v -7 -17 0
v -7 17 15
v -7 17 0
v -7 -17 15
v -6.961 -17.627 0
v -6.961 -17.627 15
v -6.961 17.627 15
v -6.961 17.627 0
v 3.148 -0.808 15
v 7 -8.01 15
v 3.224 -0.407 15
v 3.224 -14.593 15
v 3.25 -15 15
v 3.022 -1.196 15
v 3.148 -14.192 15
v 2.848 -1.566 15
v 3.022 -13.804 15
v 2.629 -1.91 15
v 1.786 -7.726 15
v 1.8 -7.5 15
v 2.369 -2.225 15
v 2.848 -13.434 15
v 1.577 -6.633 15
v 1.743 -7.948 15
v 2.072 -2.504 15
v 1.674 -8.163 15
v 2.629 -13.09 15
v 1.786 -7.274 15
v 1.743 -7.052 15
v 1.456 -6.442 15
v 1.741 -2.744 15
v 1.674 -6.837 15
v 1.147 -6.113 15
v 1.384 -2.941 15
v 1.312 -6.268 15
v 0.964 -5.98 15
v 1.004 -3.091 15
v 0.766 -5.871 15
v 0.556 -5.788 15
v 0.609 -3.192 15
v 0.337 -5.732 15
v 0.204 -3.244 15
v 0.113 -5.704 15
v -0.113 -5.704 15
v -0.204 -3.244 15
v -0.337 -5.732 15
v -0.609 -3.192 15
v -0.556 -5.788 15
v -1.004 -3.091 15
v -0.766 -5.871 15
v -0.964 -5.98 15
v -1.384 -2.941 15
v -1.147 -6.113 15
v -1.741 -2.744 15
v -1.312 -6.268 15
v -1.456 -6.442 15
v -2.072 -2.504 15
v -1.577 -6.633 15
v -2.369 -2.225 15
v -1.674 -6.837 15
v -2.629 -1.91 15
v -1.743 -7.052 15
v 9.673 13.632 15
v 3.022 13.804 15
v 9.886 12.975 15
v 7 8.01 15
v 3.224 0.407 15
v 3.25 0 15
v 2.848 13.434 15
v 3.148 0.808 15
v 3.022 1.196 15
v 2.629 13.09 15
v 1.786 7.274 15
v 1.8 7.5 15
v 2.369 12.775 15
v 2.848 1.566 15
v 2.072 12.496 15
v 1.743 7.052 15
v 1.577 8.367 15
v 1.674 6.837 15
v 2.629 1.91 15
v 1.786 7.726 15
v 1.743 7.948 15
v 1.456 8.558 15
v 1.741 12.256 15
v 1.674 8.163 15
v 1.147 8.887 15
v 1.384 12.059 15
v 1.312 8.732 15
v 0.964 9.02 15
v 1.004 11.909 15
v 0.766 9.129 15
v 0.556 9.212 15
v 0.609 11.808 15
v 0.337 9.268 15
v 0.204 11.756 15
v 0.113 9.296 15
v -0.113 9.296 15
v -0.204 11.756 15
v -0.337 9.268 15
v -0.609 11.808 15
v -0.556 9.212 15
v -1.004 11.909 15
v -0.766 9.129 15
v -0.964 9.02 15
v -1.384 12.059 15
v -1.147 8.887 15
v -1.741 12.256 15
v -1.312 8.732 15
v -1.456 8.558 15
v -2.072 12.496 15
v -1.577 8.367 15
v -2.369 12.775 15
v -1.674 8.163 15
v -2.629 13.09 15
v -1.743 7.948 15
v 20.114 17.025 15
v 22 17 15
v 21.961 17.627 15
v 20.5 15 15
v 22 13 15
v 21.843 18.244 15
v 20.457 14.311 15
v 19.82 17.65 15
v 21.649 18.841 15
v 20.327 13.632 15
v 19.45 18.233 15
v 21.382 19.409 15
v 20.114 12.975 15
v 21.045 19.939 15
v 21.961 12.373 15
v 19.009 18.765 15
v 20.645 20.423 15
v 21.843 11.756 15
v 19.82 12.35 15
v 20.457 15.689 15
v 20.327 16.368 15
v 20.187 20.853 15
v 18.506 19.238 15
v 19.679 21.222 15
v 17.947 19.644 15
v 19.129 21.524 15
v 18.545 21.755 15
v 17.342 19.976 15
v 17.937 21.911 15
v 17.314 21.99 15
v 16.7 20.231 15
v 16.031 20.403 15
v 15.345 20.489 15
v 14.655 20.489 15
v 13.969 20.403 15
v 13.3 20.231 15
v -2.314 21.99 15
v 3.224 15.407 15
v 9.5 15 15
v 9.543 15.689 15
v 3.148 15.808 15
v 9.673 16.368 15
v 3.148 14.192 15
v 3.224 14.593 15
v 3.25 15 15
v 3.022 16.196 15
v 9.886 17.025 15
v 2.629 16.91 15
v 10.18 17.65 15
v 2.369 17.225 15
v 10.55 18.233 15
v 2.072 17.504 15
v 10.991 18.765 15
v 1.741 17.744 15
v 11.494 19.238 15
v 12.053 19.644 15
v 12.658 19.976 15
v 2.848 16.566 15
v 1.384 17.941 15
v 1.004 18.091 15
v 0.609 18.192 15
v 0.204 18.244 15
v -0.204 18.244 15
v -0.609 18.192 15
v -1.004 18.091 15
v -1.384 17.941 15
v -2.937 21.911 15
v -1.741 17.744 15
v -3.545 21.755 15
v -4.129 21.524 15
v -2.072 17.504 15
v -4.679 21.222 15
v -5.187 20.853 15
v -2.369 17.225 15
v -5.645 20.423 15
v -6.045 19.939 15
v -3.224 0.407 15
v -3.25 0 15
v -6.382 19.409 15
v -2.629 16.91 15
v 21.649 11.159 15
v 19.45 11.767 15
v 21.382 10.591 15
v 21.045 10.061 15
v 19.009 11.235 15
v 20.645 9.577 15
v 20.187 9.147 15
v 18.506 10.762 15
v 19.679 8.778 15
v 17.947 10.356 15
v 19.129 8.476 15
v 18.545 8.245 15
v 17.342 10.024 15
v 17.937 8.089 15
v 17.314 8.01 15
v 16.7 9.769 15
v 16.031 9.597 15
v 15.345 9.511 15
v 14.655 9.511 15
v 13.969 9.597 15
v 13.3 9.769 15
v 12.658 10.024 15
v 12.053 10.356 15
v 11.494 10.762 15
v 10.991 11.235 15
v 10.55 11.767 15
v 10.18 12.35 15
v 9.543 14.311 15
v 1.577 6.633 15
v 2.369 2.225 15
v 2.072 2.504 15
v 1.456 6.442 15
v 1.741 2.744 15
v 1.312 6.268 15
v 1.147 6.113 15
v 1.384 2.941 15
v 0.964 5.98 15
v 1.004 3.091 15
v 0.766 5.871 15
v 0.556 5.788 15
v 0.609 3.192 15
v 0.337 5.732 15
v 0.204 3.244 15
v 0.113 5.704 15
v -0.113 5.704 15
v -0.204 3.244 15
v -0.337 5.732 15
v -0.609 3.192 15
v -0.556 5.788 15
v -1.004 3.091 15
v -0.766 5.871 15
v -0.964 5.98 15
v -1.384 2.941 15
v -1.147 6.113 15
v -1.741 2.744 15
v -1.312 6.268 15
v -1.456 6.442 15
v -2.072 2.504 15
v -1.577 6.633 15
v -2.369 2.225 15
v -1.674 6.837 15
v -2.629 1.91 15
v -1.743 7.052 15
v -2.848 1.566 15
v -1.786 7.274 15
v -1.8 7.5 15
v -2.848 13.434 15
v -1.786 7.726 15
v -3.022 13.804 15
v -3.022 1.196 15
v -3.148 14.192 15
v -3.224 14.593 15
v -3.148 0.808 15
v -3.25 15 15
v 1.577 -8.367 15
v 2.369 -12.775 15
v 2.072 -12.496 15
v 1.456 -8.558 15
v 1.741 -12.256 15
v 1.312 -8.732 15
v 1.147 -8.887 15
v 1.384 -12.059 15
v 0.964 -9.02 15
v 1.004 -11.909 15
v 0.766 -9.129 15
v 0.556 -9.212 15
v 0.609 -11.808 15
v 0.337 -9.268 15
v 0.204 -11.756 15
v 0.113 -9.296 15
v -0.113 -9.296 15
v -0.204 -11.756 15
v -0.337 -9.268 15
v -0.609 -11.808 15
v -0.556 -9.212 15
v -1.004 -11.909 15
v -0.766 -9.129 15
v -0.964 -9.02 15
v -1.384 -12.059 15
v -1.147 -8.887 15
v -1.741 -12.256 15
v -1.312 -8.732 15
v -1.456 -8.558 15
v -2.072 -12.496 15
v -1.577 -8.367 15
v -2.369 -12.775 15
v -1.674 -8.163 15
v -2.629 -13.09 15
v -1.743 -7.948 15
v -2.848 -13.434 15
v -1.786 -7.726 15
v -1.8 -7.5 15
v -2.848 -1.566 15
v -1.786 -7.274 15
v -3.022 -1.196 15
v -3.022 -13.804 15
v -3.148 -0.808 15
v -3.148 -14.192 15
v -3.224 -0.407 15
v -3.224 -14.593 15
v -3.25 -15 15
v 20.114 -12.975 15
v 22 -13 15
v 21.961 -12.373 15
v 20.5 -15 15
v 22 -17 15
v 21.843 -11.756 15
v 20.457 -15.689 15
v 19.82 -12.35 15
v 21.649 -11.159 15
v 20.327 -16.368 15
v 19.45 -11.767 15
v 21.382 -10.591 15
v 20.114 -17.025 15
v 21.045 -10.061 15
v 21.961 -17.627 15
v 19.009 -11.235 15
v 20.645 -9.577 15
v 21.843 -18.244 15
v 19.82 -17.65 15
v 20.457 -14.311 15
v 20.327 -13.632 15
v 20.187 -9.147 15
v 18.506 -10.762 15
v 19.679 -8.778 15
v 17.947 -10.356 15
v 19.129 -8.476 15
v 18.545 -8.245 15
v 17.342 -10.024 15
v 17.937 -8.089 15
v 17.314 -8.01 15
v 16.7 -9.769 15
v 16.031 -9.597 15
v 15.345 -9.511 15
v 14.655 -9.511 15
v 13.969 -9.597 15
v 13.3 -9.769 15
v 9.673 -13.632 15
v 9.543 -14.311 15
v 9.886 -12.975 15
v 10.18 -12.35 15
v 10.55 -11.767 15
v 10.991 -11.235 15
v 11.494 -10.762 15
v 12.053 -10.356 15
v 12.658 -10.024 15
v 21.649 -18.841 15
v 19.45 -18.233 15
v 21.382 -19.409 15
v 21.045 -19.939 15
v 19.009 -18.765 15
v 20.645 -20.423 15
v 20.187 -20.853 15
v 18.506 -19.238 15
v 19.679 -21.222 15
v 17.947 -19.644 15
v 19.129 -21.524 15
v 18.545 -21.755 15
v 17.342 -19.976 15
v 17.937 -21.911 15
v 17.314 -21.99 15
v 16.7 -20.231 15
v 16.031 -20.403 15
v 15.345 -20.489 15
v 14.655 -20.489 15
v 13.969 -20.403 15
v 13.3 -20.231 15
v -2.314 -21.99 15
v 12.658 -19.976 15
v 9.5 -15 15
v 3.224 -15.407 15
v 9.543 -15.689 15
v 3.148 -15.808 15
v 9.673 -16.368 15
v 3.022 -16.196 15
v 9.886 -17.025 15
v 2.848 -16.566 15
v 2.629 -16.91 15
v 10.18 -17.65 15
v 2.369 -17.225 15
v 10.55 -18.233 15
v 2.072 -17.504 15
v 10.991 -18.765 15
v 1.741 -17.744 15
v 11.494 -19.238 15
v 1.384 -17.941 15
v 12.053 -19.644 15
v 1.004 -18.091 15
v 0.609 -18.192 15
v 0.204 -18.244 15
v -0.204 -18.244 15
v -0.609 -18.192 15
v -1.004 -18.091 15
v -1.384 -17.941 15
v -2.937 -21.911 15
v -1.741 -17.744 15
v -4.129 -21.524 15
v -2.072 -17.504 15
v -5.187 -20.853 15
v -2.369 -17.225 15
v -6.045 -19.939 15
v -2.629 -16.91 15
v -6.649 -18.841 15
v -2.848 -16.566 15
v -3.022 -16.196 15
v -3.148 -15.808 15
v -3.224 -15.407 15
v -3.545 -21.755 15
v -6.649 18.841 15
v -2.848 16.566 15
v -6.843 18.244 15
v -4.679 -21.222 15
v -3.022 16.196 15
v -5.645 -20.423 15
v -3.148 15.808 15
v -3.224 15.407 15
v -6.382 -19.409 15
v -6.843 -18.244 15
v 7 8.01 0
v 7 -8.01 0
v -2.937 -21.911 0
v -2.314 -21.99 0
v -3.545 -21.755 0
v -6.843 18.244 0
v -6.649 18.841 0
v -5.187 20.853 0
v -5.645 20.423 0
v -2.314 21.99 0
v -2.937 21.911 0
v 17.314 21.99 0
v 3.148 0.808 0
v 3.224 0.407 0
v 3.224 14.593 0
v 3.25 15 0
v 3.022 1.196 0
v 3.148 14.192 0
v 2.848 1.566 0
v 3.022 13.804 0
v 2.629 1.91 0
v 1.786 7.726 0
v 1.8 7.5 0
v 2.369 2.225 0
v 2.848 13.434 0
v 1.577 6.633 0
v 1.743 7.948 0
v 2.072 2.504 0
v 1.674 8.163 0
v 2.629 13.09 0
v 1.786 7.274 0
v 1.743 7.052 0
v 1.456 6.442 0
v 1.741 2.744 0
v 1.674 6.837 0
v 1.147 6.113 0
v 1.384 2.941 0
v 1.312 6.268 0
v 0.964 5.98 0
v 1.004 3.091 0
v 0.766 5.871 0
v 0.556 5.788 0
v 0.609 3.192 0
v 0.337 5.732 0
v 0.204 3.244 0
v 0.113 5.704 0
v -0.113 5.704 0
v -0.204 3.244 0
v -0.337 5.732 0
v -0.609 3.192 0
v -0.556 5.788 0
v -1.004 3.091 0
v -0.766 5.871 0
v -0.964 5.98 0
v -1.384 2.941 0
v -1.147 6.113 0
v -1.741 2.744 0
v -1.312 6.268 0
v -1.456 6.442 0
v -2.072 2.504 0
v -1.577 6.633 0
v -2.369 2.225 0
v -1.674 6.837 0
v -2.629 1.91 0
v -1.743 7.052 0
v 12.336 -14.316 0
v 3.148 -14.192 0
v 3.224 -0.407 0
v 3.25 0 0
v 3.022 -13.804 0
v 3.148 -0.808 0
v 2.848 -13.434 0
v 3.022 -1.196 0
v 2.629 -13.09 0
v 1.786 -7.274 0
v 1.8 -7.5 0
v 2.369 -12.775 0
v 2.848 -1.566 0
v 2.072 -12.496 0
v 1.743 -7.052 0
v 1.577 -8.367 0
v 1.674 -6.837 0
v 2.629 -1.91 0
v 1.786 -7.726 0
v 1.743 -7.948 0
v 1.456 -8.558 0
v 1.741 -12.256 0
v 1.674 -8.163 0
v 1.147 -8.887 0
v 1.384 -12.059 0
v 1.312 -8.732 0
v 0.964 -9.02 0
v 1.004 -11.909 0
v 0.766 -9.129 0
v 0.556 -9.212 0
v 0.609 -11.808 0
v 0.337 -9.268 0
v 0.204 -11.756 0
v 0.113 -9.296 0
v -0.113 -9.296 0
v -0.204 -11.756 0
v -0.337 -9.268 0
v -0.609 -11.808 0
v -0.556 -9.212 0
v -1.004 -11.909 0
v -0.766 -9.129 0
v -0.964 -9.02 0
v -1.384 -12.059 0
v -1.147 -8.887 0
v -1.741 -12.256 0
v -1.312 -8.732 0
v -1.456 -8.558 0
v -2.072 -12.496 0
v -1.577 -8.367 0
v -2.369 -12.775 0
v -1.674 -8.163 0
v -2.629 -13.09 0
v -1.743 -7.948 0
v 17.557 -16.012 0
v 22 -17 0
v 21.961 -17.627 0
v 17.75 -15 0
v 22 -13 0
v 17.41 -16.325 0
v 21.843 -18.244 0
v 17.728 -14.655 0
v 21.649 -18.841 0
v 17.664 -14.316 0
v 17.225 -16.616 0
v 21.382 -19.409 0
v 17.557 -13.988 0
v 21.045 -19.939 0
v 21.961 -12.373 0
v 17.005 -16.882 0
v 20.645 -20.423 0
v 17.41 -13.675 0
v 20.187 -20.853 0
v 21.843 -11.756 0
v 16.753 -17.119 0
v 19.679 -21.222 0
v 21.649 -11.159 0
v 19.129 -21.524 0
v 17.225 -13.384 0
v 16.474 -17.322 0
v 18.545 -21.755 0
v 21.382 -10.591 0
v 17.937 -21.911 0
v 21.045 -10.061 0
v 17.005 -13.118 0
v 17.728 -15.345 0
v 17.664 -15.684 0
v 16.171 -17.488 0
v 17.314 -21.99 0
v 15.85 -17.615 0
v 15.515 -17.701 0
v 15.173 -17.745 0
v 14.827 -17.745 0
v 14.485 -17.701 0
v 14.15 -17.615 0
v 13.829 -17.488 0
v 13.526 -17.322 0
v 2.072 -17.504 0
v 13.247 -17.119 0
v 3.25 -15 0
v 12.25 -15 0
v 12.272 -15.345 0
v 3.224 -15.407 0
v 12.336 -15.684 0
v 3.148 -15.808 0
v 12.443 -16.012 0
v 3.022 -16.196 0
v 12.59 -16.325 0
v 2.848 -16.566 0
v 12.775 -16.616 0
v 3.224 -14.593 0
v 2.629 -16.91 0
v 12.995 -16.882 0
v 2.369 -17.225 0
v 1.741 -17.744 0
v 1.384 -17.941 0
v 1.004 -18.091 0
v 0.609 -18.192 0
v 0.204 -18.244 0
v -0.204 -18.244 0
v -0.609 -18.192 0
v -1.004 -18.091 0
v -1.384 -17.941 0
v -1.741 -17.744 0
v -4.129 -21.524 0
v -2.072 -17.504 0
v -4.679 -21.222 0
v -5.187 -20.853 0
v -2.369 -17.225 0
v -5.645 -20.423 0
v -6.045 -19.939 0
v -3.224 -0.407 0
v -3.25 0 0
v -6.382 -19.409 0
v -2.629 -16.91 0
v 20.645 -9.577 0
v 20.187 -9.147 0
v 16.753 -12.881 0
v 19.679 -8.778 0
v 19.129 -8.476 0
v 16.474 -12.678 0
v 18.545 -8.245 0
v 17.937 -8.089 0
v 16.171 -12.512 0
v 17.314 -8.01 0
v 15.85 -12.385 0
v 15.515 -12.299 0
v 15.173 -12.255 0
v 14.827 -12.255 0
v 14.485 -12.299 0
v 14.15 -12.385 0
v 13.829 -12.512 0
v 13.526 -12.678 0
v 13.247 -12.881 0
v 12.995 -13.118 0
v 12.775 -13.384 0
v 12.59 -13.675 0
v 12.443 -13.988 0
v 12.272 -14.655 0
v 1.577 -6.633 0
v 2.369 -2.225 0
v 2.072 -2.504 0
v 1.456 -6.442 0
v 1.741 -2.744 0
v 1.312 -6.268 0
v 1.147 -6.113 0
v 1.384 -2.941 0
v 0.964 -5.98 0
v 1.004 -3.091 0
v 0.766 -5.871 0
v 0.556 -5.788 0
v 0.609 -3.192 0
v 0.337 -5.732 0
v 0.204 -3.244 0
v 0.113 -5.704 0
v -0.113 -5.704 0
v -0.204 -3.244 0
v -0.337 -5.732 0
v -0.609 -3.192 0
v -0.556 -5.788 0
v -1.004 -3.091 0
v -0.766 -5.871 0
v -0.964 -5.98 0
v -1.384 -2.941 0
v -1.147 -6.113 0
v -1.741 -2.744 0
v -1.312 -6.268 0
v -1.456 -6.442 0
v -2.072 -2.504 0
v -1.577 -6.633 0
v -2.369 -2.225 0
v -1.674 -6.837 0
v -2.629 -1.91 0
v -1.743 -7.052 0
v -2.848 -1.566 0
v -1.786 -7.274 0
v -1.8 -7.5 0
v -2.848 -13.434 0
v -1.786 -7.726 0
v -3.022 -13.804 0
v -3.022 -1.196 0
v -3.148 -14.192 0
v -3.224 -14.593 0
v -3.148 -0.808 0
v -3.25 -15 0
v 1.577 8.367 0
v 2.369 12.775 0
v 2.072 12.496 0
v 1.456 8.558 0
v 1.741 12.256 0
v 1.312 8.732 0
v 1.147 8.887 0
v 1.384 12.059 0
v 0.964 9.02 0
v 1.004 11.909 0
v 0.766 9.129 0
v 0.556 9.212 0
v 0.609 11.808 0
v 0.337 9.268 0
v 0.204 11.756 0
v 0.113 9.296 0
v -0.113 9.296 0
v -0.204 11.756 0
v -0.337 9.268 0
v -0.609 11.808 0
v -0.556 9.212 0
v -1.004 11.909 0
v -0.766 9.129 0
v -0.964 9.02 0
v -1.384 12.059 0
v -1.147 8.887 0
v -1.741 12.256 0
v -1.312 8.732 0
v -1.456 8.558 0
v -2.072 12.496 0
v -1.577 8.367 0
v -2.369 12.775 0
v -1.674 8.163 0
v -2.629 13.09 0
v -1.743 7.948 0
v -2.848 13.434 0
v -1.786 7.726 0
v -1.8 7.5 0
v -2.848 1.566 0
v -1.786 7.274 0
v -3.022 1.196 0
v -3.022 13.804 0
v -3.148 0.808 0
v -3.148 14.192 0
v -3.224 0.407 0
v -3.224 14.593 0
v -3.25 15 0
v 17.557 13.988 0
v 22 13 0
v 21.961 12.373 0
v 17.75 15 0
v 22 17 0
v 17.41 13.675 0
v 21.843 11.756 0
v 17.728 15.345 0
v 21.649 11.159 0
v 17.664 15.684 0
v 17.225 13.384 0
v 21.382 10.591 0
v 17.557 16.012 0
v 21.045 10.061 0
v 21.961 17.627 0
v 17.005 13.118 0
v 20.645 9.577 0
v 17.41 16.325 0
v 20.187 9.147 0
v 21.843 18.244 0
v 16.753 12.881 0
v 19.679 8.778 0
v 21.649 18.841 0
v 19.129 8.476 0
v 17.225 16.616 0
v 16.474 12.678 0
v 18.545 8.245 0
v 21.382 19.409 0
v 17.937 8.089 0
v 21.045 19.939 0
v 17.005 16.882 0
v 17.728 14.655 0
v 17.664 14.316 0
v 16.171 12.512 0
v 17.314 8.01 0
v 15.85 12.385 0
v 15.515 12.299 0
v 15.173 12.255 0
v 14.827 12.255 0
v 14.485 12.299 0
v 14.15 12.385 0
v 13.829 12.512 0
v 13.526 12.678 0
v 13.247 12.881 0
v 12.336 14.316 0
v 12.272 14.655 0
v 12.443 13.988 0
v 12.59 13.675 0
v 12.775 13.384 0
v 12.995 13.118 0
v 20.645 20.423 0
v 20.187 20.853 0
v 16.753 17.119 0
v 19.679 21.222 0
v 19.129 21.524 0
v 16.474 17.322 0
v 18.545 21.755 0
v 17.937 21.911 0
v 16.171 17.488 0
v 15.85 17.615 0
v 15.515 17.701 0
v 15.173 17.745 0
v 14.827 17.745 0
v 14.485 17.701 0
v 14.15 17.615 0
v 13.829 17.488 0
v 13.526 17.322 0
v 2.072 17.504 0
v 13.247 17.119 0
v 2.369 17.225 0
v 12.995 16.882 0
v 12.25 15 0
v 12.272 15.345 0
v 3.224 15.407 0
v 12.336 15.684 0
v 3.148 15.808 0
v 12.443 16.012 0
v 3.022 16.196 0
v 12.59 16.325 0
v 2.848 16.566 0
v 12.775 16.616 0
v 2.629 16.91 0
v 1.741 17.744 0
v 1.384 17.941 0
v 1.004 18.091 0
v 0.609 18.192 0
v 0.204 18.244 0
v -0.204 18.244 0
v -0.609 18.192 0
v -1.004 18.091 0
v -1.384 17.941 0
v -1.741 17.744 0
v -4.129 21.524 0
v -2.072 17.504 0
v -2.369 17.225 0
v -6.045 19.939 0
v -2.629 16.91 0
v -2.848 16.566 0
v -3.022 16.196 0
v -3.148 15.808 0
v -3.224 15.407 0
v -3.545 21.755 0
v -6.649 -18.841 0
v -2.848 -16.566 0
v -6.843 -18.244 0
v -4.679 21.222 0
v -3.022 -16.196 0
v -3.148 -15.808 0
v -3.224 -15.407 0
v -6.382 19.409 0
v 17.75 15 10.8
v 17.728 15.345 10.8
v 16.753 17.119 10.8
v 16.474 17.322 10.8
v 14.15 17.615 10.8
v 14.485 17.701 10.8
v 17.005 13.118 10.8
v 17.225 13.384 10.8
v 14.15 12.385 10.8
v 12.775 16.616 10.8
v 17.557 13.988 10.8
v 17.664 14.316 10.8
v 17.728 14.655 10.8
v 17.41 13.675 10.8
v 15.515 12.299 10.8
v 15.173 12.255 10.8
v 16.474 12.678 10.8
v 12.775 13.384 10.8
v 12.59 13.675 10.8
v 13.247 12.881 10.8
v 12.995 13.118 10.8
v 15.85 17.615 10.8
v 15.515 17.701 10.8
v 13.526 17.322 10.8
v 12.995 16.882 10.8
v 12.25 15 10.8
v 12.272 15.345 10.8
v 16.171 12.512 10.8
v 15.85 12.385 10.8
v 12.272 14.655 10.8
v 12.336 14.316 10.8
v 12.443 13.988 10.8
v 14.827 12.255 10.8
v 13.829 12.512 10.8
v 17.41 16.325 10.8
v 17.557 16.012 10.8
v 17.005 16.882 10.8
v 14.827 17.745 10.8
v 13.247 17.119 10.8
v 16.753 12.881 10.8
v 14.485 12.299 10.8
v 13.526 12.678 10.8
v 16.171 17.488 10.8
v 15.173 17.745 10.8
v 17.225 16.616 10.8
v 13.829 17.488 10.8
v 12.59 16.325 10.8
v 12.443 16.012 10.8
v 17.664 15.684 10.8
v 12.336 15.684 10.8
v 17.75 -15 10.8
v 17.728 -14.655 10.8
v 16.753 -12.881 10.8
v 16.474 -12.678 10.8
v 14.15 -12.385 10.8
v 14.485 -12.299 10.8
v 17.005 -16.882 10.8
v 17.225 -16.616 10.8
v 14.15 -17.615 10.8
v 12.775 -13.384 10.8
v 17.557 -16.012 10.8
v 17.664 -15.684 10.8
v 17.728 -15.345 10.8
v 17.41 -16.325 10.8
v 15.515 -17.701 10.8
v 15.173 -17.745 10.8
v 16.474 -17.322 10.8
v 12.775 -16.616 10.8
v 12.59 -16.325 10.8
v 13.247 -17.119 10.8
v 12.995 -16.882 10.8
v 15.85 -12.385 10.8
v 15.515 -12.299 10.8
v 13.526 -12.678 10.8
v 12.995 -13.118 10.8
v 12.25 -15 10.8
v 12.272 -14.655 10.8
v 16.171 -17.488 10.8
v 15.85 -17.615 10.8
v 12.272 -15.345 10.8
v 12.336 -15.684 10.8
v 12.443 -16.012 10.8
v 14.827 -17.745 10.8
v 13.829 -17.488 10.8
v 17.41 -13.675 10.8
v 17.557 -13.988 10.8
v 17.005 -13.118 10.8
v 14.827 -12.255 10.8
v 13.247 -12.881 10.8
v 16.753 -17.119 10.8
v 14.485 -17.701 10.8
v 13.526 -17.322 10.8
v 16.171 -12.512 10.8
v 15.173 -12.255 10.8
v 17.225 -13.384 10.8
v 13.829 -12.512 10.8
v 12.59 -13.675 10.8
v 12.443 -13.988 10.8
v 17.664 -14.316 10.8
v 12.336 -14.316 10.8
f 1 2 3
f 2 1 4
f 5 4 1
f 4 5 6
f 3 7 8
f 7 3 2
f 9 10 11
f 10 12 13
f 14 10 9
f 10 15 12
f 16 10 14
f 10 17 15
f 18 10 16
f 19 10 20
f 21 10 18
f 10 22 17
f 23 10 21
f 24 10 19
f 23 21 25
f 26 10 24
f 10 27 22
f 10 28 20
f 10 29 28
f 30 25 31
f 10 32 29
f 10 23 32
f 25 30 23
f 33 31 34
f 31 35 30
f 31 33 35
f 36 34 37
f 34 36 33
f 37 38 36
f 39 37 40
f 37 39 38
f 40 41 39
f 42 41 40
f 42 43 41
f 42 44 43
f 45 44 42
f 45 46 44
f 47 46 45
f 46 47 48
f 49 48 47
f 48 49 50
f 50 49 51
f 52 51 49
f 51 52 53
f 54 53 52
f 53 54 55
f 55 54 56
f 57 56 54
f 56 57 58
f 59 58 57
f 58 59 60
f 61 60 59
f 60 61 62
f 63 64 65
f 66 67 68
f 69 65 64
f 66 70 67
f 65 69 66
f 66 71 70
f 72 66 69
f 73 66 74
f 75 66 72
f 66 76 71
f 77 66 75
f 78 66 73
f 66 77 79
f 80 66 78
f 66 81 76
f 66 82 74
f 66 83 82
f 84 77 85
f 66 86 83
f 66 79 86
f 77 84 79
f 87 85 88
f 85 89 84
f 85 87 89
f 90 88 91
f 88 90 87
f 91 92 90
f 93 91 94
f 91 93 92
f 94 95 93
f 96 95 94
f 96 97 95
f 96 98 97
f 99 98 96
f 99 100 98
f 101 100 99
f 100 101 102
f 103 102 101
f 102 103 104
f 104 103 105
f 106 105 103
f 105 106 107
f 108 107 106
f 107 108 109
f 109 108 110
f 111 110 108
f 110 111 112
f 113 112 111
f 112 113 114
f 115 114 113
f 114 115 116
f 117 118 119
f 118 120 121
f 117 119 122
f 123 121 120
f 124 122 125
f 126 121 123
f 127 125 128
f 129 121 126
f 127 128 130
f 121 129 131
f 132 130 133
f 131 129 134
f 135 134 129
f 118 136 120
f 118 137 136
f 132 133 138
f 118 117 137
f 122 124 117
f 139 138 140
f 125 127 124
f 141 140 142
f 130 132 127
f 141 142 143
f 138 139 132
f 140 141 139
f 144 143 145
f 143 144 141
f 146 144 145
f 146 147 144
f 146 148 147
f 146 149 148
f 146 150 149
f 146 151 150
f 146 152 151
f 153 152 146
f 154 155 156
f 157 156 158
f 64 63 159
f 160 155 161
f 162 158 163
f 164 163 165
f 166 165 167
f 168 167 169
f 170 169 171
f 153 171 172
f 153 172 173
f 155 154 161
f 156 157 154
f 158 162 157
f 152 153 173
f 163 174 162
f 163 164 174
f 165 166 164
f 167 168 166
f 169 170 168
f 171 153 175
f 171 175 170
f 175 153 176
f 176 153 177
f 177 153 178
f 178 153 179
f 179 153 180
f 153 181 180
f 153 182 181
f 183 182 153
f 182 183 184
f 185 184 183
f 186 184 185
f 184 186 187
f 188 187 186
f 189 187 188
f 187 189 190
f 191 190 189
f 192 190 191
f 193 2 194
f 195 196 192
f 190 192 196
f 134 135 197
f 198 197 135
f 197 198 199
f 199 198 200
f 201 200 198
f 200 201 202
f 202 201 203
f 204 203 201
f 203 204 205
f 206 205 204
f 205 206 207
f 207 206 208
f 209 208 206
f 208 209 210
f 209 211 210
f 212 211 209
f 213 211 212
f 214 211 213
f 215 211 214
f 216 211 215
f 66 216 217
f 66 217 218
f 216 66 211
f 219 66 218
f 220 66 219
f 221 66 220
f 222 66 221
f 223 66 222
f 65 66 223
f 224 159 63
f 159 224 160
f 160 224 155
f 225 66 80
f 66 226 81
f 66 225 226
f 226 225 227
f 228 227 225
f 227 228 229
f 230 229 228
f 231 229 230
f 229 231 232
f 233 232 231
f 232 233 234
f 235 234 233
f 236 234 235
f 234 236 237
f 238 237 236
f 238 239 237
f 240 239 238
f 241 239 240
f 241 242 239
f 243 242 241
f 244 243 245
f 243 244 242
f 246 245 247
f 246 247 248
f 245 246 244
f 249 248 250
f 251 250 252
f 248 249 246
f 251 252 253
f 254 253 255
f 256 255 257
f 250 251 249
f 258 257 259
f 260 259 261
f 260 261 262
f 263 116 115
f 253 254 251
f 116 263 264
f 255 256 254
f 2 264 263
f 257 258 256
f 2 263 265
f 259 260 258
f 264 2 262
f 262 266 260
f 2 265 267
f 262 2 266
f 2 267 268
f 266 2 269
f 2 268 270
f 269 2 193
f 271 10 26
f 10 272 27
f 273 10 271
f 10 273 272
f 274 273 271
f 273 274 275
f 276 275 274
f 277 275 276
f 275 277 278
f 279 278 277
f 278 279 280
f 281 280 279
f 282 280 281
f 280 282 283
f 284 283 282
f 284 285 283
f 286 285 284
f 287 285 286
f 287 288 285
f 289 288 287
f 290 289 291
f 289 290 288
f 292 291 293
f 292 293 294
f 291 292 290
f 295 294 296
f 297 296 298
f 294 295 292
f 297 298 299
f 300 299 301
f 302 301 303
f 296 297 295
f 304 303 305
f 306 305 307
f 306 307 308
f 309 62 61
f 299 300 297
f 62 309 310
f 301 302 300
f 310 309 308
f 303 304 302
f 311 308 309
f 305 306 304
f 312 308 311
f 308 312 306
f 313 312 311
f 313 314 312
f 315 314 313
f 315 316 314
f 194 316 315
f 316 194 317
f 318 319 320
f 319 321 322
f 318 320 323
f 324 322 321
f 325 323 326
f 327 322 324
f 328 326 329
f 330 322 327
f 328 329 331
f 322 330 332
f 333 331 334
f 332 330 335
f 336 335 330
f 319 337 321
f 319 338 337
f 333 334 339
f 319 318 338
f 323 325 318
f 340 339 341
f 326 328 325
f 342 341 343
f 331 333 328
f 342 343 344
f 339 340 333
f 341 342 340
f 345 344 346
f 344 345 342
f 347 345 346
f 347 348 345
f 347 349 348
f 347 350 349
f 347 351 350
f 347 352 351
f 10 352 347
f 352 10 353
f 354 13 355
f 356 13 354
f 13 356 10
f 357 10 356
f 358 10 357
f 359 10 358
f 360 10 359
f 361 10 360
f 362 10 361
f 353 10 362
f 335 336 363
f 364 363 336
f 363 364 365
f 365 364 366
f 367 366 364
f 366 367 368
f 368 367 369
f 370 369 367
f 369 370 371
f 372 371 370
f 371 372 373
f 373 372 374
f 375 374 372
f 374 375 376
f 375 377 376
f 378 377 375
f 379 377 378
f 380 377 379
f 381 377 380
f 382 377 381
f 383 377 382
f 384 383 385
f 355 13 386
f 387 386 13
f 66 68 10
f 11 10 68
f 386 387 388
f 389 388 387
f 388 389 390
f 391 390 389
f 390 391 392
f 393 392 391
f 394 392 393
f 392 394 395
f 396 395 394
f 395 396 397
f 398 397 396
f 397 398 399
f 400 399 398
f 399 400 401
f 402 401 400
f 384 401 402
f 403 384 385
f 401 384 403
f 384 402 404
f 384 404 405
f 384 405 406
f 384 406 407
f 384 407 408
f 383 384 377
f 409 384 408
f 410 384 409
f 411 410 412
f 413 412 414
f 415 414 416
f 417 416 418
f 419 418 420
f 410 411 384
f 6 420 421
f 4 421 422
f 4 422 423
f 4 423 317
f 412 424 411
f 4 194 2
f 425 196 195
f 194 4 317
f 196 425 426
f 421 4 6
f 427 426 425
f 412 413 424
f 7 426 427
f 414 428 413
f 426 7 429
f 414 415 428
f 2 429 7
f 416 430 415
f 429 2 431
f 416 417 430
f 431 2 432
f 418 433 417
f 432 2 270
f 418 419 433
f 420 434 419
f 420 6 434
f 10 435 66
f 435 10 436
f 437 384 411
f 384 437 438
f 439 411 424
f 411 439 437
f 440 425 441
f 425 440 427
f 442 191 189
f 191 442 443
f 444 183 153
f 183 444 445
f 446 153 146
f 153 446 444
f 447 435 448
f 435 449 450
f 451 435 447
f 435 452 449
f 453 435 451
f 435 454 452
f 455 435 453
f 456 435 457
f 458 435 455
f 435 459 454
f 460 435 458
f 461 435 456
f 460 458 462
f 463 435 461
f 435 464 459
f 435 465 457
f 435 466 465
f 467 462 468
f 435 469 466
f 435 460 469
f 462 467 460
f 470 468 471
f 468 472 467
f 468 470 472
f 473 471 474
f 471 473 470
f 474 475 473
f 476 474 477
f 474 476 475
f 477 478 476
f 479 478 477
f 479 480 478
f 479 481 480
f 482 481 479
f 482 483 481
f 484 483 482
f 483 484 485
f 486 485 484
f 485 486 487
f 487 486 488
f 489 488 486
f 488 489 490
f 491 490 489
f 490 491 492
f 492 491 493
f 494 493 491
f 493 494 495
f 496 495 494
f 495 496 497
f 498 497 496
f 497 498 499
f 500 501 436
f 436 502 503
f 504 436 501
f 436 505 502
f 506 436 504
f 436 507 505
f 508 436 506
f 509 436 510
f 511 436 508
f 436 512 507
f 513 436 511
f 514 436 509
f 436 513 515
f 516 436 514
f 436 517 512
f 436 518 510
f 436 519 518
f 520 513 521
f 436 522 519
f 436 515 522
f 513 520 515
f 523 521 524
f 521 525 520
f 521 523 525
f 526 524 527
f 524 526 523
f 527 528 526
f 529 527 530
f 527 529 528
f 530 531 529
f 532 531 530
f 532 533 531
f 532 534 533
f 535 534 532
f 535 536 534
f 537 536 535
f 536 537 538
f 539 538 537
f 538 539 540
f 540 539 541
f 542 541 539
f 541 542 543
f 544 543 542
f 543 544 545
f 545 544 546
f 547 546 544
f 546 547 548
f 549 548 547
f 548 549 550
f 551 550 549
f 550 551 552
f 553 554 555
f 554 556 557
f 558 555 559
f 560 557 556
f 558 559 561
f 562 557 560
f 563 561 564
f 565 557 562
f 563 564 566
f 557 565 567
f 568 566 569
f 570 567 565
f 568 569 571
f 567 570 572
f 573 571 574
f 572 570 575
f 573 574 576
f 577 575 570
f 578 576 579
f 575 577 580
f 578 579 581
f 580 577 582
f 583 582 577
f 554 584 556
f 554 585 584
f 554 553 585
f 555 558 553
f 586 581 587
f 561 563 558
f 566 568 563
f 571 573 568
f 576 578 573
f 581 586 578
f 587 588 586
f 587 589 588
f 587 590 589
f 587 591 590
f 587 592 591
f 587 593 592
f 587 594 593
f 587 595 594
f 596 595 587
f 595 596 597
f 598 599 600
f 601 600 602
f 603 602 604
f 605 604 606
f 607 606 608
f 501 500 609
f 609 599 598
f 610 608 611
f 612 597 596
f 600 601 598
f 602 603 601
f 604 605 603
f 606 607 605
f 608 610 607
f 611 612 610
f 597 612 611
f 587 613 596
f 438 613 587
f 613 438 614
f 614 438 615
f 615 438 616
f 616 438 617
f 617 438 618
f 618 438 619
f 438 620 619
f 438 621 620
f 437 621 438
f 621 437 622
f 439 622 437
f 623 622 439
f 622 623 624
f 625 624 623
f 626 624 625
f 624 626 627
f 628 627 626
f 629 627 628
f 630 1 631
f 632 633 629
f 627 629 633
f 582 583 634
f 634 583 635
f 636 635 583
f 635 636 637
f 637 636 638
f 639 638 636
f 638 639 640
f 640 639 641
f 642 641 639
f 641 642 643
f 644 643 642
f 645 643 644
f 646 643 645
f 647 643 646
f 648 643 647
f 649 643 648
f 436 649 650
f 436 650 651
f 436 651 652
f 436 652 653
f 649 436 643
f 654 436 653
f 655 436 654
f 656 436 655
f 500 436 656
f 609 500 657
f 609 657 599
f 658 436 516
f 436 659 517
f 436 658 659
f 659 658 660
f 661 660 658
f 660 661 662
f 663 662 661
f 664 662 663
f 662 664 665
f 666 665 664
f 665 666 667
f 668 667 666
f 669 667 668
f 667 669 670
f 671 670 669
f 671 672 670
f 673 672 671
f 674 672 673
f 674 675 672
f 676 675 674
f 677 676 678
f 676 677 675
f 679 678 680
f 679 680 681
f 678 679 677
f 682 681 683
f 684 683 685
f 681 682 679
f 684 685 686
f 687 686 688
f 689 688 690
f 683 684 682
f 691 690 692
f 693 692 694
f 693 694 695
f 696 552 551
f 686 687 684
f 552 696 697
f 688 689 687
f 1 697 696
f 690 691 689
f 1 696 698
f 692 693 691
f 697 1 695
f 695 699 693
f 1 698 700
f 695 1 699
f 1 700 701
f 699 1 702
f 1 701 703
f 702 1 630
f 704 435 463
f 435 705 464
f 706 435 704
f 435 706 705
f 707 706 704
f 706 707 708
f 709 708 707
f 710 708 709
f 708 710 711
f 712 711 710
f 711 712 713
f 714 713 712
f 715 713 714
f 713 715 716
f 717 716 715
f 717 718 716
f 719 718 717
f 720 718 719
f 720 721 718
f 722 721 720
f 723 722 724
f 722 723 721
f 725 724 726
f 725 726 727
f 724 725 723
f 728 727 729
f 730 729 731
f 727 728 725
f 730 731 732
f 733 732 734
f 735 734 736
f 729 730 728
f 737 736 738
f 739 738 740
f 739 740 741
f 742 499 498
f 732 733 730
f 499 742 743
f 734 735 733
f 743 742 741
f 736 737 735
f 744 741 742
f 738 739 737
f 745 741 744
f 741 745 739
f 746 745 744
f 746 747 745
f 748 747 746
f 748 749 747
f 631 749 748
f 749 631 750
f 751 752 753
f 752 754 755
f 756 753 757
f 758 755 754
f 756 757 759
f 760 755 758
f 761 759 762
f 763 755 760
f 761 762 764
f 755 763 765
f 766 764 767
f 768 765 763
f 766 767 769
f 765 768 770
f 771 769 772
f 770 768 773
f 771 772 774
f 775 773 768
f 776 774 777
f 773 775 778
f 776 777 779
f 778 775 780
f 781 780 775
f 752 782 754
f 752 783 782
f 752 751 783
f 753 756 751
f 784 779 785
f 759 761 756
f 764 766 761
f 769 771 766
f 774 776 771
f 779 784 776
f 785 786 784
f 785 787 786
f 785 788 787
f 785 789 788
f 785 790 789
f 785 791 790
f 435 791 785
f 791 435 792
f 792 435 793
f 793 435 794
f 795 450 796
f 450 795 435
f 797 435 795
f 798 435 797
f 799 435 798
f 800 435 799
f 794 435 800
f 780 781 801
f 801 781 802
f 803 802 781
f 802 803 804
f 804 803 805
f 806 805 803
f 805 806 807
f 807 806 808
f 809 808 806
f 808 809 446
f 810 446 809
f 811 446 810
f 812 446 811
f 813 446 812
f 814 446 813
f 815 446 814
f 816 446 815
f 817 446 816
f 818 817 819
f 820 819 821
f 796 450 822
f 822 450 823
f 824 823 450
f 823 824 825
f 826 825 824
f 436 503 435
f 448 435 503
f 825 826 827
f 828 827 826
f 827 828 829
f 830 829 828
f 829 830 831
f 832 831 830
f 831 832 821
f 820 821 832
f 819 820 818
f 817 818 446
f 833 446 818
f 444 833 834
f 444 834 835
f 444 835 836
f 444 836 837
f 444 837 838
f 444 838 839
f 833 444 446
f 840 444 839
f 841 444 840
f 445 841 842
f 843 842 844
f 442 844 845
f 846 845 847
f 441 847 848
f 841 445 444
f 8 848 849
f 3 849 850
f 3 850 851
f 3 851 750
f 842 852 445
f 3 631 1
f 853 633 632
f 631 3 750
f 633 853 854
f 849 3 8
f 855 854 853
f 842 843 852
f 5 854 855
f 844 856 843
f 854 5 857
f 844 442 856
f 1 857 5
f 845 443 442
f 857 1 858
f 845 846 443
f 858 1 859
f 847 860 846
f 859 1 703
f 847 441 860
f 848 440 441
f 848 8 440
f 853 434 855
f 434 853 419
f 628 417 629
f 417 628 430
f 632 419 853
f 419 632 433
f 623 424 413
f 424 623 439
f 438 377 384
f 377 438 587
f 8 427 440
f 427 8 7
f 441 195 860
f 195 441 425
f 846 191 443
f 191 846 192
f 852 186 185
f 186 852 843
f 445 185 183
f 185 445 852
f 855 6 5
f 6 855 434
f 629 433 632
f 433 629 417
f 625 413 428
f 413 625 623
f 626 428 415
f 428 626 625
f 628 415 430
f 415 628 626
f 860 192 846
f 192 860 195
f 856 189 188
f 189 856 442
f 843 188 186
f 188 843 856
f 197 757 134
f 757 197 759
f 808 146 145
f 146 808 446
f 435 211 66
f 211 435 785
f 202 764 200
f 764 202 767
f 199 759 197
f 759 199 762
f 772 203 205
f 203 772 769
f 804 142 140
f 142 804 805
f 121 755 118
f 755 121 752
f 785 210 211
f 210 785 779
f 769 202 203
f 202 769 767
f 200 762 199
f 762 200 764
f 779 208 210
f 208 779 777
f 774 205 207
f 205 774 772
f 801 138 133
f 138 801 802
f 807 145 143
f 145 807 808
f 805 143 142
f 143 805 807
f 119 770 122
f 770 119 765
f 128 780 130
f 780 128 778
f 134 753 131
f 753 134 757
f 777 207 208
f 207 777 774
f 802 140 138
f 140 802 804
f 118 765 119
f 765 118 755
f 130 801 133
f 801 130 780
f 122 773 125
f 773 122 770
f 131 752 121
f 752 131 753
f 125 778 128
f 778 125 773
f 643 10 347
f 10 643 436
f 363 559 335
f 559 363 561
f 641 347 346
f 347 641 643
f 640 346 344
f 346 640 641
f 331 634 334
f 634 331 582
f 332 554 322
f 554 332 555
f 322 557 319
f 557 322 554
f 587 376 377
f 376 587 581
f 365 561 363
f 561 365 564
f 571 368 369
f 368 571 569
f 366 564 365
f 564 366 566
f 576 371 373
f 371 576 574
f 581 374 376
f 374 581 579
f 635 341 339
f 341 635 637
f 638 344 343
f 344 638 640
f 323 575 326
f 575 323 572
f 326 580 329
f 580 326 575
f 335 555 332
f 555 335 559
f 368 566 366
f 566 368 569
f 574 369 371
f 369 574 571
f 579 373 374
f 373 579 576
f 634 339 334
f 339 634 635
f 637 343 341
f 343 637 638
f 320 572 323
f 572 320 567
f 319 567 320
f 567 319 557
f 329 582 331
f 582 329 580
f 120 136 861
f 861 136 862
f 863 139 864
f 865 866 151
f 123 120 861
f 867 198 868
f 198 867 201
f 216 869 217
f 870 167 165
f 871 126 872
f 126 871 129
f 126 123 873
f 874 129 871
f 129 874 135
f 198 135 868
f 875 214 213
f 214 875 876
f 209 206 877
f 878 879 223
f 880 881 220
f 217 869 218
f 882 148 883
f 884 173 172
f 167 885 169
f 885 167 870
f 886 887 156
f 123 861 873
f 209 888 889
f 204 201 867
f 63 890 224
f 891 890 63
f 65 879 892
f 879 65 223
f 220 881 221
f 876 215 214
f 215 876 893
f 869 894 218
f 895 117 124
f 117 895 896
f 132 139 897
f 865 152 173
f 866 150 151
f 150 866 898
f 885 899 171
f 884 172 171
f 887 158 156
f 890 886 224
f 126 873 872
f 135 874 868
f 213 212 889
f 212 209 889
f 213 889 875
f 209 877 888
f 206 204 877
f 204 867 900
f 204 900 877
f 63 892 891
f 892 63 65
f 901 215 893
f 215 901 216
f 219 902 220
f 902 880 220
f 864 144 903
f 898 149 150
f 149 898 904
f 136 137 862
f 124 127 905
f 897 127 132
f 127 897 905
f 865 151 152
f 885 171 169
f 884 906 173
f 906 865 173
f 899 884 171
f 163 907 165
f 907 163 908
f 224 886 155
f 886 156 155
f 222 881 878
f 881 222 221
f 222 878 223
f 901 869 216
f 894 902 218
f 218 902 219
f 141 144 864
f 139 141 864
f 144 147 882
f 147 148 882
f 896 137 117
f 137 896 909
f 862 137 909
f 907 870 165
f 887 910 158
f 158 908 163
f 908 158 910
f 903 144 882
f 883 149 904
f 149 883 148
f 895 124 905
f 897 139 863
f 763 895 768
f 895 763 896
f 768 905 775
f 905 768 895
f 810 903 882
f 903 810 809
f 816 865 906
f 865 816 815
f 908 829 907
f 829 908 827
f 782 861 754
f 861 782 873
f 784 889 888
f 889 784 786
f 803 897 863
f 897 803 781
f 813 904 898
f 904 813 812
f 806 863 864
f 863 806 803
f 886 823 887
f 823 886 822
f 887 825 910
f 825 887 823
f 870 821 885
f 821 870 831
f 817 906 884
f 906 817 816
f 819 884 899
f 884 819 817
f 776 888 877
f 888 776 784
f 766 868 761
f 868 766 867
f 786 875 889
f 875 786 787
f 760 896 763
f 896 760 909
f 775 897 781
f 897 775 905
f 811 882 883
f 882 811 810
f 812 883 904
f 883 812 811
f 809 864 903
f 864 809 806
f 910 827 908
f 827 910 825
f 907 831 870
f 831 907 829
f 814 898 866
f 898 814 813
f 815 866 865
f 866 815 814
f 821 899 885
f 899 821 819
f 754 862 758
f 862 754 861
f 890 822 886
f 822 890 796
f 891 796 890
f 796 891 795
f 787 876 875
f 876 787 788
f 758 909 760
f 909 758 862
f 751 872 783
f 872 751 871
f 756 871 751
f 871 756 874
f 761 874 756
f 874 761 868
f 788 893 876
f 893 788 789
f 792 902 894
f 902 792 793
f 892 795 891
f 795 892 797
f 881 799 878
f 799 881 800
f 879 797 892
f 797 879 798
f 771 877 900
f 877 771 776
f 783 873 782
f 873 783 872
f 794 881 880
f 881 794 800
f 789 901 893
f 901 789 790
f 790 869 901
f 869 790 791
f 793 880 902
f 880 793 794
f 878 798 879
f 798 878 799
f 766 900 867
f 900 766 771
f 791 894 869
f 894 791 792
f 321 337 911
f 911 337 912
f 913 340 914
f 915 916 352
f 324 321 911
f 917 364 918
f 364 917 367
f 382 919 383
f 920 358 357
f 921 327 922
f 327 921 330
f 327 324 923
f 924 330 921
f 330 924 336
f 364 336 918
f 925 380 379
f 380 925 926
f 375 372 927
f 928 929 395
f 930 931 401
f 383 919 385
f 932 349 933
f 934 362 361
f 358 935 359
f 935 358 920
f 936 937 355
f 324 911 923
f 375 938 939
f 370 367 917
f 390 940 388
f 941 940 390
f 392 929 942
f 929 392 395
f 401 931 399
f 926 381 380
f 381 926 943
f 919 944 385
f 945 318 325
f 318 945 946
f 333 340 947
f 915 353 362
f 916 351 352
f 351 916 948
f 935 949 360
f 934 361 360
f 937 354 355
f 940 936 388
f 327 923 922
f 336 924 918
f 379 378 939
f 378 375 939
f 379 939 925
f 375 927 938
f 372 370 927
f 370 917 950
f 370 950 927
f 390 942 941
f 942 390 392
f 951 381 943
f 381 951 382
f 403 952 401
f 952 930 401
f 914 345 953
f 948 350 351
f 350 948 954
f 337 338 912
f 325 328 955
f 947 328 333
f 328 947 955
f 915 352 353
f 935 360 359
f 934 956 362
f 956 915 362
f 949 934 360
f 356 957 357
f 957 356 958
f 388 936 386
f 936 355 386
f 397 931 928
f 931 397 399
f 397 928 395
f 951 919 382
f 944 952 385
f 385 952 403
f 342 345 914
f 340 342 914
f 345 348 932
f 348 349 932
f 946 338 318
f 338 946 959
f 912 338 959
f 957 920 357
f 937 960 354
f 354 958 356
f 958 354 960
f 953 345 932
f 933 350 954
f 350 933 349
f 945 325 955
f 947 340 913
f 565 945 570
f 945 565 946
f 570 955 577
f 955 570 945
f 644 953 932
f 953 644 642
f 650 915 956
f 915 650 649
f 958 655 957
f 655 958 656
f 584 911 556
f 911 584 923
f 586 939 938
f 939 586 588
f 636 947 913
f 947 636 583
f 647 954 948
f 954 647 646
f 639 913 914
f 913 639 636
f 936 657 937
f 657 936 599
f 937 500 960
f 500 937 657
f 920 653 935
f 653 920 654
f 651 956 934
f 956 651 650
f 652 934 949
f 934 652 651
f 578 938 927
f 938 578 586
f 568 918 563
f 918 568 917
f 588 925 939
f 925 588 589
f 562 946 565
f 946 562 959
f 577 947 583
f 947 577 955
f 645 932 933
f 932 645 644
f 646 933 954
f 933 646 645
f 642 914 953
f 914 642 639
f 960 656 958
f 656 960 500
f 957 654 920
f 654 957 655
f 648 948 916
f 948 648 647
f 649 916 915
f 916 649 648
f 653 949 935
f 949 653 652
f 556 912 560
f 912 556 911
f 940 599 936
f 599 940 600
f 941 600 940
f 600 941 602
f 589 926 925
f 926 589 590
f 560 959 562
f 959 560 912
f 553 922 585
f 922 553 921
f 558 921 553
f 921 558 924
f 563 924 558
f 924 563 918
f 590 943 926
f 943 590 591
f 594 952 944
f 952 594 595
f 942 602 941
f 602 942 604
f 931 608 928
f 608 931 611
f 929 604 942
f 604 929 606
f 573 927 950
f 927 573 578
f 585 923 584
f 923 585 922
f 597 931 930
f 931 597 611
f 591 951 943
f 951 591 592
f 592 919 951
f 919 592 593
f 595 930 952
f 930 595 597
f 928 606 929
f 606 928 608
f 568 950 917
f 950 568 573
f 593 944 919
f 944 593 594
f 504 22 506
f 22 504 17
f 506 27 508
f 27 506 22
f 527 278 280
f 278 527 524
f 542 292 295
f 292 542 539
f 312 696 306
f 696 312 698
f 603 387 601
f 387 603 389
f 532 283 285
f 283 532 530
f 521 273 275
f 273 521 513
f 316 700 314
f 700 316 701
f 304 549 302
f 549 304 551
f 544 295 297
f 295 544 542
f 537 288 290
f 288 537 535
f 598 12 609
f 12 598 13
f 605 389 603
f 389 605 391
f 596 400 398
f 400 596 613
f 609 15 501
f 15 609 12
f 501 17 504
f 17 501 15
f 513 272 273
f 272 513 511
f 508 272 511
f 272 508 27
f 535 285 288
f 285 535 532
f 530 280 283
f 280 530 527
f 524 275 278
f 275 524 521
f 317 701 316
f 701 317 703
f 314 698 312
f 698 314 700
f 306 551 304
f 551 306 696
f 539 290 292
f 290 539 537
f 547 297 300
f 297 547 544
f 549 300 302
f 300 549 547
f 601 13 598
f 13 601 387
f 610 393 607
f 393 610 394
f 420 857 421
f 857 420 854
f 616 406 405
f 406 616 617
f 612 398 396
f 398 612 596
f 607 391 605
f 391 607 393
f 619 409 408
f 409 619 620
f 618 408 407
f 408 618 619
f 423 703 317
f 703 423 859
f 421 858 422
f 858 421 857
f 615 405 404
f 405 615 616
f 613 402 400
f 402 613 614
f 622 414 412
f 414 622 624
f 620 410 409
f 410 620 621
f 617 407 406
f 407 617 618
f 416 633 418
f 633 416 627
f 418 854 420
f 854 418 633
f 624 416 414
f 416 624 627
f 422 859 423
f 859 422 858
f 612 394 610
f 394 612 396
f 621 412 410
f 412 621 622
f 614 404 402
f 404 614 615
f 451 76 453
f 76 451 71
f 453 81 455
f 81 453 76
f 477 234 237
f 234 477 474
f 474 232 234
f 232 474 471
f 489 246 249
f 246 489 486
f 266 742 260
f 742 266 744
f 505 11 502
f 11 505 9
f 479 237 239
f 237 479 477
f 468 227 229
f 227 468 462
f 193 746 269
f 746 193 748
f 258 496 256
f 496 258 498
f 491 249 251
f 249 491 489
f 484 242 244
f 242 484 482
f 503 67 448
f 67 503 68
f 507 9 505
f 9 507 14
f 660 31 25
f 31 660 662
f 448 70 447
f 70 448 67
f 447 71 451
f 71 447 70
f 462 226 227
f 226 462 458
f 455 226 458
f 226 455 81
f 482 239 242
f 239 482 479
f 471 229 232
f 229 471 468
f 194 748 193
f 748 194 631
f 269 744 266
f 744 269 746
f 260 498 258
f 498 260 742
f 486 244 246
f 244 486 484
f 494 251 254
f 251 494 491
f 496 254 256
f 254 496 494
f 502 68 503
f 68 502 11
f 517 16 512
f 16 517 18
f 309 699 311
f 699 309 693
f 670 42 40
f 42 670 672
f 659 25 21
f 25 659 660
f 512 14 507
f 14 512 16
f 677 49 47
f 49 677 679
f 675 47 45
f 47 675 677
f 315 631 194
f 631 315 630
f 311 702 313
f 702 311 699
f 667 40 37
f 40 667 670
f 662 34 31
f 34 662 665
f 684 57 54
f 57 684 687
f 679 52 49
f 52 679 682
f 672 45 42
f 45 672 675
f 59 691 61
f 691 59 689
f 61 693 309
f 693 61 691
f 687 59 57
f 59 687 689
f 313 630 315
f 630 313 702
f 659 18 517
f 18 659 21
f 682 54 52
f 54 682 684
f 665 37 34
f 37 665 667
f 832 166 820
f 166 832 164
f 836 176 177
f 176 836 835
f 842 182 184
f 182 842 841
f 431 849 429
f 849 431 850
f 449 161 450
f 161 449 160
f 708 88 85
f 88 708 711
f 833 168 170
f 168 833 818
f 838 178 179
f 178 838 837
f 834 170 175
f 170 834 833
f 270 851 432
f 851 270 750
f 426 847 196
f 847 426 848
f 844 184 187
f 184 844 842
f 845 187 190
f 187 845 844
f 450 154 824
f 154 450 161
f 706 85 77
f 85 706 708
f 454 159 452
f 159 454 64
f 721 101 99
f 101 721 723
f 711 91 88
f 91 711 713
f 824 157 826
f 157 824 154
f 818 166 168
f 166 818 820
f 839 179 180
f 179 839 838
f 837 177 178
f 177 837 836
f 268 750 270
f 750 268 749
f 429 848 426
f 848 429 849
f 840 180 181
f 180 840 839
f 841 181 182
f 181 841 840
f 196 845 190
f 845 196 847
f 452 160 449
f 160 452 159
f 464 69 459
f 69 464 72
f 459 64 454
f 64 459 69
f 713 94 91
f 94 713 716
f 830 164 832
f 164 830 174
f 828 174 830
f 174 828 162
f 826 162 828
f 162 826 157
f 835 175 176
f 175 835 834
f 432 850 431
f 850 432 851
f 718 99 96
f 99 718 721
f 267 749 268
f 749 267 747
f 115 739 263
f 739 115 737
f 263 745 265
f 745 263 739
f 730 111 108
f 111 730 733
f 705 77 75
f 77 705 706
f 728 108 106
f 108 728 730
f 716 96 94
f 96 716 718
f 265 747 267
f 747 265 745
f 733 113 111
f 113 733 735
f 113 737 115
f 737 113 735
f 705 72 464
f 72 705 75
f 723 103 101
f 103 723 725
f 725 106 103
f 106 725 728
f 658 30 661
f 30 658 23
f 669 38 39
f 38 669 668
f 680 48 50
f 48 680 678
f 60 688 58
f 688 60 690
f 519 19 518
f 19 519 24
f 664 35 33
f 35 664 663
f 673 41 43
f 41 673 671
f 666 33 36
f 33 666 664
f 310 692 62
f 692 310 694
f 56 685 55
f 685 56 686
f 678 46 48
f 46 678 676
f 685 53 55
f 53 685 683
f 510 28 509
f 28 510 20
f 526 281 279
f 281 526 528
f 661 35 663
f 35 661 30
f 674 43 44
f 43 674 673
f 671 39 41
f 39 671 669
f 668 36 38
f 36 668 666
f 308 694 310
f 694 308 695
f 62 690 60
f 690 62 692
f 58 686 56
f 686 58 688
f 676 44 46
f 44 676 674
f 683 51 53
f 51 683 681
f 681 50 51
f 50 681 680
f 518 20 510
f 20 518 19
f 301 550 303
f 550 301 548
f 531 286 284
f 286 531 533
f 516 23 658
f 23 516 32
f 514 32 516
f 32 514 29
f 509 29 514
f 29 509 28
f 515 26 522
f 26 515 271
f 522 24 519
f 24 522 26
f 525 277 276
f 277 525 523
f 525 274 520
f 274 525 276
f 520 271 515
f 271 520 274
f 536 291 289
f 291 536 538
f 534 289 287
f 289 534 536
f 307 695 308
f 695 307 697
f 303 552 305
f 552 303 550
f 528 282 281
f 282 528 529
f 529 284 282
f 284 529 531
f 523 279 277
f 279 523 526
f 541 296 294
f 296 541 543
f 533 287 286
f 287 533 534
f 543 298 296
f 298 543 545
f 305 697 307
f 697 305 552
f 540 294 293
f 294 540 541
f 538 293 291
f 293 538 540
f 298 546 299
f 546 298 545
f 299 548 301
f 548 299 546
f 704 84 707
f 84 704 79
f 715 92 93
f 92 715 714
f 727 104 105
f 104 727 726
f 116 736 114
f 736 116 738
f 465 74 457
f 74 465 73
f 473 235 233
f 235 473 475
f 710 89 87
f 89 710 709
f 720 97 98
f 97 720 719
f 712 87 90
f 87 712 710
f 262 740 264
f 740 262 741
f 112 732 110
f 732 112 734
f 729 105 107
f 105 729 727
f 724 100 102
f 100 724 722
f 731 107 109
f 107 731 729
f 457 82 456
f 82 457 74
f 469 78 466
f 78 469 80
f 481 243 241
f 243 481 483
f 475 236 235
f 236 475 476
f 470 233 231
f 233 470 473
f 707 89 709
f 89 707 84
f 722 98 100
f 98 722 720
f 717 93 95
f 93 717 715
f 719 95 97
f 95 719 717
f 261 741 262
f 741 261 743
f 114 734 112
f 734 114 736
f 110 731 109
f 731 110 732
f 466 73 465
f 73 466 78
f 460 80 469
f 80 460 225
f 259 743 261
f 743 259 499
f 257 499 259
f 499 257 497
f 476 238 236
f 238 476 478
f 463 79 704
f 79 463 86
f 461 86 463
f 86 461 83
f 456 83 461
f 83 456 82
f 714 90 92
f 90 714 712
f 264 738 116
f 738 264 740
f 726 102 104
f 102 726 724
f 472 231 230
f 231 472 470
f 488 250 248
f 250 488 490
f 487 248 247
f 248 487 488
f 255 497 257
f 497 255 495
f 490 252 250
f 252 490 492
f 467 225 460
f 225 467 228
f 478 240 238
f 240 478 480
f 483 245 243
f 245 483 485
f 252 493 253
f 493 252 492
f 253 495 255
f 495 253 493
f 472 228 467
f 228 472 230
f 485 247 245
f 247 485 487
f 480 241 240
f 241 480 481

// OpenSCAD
$fn = 50;


difference() {
	union() {
		hull() {
			translate(v = [-2.0000000000, 17.0000000000, 0]) {
				cylinder(h = 15, r = 5);
			}
			translate(v = [2.0000000000, 17.0000000000, 0]) {
				cylinder(h = 15, r = 5);
			}
			translate(v = [-2.0000000000, -17.0000000000, 0]) {
				cylinder(h = 15, r = 5);
			}
			translate(v = [2.0000000000, -17.0000000000, 0]) {
				cylinder(h = 15, r = 5);
			}
		}
		translate(v = [7.5000000000, 15.0000000000, 0]) {
			hull() {
				translate(v = [-9.5000000000, 2.0000000000, 0]) {
					cylinder(h = 15, r = 5);
				}
				translate(v = [9.5000000000, 2.0000000000, 0]) {
					cylinder(h = 15, r = 5);
				}
				translate(v = [-9.5000000000, -2.0000000000, 0]) {
					cylinder(h = 15, r = 5);
				}
				translate(v = [9.5000000000, -2.0000000000, 0]) {
					cylinder(h = 15, r = 5);
				}
			}
		}
		translate(v = [7.5000000000, -15.0000000000, 0]) {
			hull() {
				translate(v = [-9.5000000000, 2.0000000000, 0]) {
					cylinder(h = 15, r = 5);
				}
				translate(v = [9.5000000000, 2.0000000000, 0]) {
					cylinder(h = 15, r = 5);
				}
				translate(v = [-9.5000000000, -2.0000000000, 0]) {
					cylinder(h = 15, r = 5);
				}
				translate(v = [9.5000000000, -2.0000000000, 0]) {
					cylinder(h = 15, r = 5);
				}
			}
		}
	}
	union() {
		translate(v = [15.0000000000, 15.0000000000, 15]) {
			rotate(a = [0, 0, 0]) {
				difference() {
					union() {
						#translate(v = [0, 0, -15.0000000000]) {
							cylinder(h = 15, r = 2.2500000000);
						}
						#translate(v = [0, 0, -4.2000000000]) {
							cylinder(h = 4.2000000000, r1 = 2.7500000000, r2 = 5.5000000000);
						}
						#translate(v = [0, 0, -15.0000000000]) {
							cylinder(h = 15, r = 2.7500000000);
						}
						#translate(v = [0, 0, -15.0000000000]) {
							cylinder(h = 15, r = 2.2500000000);
						}
					}
					union();
				}
			}
		}
		translate(v = [15.0000000000, -15.0000000000, 15]) {
			rotate(a = [0, 0, 0]) {
				difference() {
					union() {
						#translate(v = [0, 0, -15.0000000000]) {
							cylinder(h = 15, r = 2.2500000000);
						}
						#translate(v = [0, 0, -4.2000000000]) {
							cylinder(h = 4.2000000000, r1 = 2.7500000000, r2 = 5.5000000000);
						}
						#translate(v = [0, 0, -15.0000000000]) {
							cylinder(h = 15, r = 2.7500000000);
						}
						#translate(v = [0, 0, -15.0000000000]) {
							cylinder(h = 15, r = 2.2500000000);
						}
					}
					union();
				}
			}
		}
		translate(v = [0.0000000000, -15.0000000000, 0]) {
			translate(v = [0, 0, -100]) {
				cylinder(h = 200, r = 3.2500000000);
			}
		}
		translate(v = [0, 0, -100]) {
			cylinder(h = 200, r = 3.2500000000);
		}
		translate(v = [0.0000000000, 15.0000000000, 0]) {
			translate(v = [0, 0, -100]) {
				cylinder(h = 200, r = 3.2500000000);
			}
		}
		translate(v = [0.0000000000, -15.0000000000, 0]) {
			translate(v = [0, 0, -100]) {
				cylinder(h = 200, r = 1.8000000000);
			}
		}
		translate(v = [0.0000000000, -7.5000000000, 0]) {
			translate(v = [0, 0, -100]) {
				cylinder(h = 200, r = 1.8000000000);
			}
		}
		translate(v = [0, 0, -100]) {
			cylinder(h = 200, r = 1.8000000000);
		}
		translate(v = [0.0000000000, 7.5000000000, 0]) {
			translate(v = [0, 0, -100]) {
				cylinder(h = 200, r = 1.8000000000);
			}
		}
		translate(v = [0.0000000000, 15.0000000000, 0]) {
			translate(v = [0, 0, -100]) {
				cylinder(h = 200, r = 1.8000000000);
			}
		}
	}
}
